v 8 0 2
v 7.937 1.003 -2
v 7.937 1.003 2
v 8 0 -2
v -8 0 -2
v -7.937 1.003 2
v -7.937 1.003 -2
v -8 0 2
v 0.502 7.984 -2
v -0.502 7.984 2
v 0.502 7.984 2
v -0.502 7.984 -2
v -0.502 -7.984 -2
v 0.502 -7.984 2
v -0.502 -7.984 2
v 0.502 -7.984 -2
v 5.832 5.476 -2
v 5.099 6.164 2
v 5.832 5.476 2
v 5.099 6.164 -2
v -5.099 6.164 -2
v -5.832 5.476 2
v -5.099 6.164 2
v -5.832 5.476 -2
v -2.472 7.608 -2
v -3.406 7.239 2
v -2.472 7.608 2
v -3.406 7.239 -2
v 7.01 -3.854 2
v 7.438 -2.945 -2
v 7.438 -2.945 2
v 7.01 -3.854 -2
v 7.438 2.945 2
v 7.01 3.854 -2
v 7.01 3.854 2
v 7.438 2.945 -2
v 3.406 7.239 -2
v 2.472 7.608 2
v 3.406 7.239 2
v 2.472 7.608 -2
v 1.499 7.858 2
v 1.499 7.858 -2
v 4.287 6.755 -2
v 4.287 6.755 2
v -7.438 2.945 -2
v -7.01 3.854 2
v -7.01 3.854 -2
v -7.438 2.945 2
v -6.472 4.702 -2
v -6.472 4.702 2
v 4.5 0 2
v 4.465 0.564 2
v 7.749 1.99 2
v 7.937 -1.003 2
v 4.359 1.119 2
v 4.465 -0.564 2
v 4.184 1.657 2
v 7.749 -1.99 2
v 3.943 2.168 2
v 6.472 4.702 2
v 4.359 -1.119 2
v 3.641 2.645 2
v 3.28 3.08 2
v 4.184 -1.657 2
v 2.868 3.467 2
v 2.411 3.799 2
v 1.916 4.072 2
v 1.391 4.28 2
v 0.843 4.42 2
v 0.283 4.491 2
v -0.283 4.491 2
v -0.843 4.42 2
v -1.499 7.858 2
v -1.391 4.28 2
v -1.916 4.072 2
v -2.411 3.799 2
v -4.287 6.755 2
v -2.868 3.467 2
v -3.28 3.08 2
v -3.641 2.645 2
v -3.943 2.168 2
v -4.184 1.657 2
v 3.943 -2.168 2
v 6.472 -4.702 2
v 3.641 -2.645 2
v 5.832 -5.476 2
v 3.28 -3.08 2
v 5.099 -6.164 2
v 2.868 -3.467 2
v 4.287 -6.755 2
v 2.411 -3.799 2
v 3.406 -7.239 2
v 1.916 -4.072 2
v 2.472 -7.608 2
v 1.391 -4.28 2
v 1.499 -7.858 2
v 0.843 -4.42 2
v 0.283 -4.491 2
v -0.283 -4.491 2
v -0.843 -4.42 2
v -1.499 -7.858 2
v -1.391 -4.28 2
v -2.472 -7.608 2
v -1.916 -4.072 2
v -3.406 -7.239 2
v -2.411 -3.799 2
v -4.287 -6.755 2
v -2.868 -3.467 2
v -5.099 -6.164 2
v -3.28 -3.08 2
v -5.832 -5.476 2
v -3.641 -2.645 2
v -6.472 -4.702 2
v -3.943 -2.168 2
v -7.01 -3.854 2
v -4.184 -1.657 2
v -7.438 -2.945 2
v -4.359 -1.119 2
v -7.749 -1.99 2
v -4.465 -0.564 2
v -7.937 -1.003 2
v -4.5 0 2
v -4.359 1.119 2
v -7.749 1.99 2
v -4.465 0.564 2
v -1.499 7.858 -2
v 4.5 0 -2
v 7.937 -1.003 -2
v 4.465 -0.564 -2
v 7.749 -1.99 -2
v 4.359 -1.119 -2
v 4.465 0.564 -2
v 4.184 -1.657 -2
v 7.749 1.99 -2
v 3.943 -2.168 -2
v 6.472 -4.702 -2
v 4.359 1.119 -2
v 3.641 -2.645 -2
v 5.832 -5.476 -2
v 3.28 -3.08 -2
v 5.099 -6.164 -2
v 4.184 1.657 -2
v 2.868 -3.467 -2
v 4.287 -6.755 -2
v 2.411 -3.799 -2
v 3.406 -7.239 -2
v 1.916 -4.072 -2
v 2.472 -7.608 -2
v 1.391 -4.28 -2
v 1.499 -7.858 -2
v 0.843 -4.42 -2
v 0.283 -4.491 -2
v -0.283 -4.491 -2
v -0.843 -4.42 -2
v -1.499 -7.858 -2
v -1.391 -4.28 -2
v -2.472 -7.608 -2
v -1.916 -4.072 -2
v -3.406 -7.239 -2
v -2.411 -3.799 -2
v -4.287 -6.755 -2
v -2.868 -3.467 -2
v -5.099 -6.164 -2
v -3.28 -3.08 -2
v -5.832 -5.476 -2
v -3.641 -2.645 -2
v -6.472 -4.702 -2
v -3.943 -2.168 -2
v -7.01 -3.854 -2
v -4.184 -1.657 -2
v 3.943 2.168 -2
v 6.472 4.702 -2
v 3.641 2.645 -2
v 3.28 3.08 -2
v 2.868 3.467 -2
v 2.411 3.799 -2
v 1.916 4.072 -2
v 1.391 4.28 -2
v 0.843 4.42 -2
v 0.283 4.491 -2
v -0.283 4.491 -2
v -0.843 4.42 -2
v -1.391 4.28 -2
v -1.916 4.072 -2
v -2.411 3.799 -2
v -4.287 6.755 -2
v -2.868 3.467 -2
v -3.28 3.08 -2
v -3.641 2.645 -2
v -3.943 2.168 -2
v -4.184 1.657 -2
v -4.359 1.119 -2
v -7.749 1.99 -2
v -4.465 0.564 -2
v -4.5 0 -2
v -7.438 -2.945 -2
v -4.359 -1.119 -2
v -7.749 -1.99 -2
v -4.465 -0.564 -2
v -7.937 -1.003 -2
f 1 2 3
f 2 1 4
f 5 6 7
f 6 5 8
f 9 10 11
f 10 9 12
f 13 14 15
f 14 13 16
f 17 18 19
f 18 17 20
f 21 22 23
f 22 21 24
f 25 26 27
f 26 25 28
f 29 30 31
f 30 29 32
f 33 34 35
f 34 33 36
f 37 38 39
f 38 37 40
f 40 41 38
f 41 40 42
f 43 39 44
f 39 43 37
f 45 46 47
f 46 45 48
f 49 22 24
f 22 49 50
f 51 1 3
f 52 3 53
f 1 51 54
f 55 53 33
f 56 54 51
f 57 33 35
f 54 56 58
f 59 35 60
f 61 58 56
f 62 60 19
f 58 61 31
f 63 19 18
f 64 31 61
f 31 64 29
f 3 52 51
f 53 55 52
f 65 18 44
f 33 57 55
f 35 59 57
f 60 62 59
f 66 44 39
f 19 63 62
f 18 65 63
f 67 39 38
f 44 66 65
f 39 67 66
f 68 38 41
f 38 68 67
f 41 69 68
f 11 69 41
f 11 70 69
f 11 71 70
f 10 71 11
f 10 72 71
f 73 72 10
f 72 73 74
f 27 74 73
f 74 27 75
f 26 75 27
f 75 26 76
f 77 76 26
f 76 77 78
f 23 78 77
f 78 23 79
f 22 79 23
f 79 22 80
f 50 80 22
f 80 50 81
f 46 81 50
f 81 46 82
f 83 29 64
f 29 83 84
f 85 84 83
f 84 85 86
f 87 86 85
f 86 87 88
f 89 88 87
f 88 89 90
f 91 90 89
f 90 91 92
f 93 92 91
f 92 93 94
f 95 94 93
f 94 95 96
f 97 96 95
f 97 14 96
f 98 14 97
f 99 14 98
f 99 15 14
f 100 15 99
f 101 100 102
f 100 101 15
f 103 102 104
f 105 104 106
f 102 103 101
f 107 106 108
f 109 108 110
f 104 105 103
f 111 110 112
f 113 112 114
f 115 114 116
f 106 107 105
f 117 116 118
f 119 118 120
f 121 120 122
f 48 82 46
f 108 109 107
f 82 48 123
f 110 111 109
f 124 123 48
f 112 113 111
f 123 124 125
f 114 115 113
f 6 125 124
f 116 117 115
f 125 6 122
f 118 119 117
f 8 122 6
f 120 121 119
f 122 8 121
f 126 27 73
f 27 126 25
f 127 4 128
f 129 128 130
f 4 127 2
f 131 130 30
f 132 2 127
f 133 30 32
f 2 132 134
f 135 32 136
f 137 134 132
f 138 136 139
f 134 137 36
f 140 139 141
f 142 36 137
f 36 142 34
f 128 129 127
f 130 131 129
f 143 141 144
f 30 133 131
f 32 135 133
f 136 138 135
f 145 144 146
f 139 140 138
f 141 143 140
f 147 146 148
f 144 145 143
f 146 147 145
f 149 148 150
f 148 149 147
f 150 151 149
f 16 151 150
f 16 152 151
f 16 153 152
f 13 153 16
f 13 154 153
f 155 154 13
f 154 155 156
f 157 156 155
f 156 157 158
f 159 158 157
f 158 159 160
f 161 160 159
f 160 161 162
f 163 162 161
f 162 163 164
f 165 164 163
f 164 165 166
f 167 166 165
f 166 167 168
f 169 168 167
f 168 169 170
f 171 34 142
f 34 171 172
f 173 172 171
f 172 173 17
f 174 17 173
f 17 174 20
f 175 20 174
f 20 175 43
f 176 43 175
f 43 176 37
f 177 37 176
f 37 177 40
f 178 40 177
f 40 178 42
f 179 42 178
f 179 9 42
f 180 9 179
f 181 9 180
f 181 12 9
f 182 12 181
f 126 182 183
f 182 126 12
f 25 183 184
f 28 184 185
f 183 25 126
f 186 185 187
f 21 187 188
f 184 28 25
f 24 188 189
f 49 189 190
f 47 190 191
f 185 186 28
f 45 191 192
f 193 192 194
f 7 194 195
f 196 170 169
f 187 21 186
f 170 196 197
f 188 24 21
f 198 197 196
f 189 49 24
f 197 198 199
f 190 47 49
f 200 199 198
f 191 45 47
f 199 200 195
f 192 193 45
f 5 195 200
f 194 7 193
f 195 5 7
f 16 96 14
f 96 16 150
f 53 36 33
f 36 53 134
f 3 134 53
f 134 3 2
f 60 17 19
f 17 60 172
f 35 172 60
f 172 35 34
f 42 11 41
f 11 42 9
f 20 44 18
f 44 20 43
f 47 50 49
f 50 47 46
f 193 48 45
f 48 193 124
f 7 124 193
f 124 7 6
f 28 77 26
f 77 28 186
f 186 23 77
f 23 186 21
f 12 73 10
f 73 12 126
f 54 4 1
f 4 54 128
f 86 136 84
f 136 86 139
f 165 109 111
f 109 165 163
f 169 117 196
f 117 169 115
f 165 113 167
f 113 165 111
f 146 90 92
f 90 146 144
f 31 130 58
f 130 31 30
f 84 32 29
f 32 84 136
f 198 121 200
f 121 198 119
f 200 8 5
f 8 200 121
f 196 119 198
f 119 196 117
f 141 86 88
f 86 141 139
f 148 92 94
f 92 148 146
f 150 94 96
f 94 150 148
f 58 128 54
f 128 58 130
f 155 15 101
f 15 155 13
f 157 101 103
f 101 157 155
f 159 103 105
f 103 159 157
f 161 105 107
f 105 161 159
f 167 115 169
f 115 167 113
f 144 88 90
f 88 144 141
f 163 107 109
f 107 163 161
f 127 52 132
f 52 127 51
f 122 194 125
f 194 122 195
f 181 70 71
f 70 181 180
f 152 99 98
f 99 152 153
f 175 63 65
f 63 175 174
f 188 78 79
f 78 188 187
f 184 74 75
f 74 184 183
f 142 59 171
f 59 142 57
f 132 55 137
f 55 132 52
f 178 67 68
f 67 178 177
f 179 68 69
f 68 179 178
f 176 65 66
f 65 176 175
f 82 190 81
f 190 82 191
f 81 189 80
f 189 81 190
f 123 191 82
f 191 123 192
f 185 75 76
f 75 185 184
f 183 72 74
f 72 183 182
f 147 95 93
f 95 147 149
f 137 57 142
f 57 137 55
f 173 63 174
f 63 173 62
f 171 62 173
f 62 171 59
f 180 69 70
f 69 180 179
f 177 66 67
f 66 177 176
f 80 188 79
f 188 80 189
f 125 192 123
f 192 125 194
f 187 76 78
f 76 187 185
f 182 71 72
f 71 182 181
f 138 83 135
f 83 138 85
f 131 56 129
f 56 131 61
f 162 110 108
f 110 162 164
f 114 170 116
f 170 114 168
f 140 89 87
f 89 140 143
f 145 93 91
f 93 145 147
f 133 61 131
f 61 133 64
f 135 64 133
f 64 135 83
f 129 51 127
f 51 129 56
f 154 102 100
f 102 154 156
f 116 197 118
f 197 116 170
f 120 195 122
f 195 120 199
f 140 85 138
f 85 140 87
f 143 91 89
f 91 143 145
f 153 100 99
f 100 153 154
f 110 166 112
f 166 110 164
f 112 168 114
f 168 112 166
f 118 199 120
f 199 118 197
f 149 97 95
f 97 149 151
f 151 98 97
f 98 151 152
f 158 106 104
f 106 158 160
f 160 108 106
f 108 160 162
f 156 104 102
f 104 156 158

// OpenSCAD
$fn = 50;


difference() {
	union() {
		translate(v = [0, 0, -2.0000000000]) {
			cylinder(h = 4, r = 8.0000000000);
		}
	}
	union() {
		translate(v = [0, 0, -100.0000000000]) {
			cylinder(h = 200, r = 4.5000000000);
		}
	}
}
